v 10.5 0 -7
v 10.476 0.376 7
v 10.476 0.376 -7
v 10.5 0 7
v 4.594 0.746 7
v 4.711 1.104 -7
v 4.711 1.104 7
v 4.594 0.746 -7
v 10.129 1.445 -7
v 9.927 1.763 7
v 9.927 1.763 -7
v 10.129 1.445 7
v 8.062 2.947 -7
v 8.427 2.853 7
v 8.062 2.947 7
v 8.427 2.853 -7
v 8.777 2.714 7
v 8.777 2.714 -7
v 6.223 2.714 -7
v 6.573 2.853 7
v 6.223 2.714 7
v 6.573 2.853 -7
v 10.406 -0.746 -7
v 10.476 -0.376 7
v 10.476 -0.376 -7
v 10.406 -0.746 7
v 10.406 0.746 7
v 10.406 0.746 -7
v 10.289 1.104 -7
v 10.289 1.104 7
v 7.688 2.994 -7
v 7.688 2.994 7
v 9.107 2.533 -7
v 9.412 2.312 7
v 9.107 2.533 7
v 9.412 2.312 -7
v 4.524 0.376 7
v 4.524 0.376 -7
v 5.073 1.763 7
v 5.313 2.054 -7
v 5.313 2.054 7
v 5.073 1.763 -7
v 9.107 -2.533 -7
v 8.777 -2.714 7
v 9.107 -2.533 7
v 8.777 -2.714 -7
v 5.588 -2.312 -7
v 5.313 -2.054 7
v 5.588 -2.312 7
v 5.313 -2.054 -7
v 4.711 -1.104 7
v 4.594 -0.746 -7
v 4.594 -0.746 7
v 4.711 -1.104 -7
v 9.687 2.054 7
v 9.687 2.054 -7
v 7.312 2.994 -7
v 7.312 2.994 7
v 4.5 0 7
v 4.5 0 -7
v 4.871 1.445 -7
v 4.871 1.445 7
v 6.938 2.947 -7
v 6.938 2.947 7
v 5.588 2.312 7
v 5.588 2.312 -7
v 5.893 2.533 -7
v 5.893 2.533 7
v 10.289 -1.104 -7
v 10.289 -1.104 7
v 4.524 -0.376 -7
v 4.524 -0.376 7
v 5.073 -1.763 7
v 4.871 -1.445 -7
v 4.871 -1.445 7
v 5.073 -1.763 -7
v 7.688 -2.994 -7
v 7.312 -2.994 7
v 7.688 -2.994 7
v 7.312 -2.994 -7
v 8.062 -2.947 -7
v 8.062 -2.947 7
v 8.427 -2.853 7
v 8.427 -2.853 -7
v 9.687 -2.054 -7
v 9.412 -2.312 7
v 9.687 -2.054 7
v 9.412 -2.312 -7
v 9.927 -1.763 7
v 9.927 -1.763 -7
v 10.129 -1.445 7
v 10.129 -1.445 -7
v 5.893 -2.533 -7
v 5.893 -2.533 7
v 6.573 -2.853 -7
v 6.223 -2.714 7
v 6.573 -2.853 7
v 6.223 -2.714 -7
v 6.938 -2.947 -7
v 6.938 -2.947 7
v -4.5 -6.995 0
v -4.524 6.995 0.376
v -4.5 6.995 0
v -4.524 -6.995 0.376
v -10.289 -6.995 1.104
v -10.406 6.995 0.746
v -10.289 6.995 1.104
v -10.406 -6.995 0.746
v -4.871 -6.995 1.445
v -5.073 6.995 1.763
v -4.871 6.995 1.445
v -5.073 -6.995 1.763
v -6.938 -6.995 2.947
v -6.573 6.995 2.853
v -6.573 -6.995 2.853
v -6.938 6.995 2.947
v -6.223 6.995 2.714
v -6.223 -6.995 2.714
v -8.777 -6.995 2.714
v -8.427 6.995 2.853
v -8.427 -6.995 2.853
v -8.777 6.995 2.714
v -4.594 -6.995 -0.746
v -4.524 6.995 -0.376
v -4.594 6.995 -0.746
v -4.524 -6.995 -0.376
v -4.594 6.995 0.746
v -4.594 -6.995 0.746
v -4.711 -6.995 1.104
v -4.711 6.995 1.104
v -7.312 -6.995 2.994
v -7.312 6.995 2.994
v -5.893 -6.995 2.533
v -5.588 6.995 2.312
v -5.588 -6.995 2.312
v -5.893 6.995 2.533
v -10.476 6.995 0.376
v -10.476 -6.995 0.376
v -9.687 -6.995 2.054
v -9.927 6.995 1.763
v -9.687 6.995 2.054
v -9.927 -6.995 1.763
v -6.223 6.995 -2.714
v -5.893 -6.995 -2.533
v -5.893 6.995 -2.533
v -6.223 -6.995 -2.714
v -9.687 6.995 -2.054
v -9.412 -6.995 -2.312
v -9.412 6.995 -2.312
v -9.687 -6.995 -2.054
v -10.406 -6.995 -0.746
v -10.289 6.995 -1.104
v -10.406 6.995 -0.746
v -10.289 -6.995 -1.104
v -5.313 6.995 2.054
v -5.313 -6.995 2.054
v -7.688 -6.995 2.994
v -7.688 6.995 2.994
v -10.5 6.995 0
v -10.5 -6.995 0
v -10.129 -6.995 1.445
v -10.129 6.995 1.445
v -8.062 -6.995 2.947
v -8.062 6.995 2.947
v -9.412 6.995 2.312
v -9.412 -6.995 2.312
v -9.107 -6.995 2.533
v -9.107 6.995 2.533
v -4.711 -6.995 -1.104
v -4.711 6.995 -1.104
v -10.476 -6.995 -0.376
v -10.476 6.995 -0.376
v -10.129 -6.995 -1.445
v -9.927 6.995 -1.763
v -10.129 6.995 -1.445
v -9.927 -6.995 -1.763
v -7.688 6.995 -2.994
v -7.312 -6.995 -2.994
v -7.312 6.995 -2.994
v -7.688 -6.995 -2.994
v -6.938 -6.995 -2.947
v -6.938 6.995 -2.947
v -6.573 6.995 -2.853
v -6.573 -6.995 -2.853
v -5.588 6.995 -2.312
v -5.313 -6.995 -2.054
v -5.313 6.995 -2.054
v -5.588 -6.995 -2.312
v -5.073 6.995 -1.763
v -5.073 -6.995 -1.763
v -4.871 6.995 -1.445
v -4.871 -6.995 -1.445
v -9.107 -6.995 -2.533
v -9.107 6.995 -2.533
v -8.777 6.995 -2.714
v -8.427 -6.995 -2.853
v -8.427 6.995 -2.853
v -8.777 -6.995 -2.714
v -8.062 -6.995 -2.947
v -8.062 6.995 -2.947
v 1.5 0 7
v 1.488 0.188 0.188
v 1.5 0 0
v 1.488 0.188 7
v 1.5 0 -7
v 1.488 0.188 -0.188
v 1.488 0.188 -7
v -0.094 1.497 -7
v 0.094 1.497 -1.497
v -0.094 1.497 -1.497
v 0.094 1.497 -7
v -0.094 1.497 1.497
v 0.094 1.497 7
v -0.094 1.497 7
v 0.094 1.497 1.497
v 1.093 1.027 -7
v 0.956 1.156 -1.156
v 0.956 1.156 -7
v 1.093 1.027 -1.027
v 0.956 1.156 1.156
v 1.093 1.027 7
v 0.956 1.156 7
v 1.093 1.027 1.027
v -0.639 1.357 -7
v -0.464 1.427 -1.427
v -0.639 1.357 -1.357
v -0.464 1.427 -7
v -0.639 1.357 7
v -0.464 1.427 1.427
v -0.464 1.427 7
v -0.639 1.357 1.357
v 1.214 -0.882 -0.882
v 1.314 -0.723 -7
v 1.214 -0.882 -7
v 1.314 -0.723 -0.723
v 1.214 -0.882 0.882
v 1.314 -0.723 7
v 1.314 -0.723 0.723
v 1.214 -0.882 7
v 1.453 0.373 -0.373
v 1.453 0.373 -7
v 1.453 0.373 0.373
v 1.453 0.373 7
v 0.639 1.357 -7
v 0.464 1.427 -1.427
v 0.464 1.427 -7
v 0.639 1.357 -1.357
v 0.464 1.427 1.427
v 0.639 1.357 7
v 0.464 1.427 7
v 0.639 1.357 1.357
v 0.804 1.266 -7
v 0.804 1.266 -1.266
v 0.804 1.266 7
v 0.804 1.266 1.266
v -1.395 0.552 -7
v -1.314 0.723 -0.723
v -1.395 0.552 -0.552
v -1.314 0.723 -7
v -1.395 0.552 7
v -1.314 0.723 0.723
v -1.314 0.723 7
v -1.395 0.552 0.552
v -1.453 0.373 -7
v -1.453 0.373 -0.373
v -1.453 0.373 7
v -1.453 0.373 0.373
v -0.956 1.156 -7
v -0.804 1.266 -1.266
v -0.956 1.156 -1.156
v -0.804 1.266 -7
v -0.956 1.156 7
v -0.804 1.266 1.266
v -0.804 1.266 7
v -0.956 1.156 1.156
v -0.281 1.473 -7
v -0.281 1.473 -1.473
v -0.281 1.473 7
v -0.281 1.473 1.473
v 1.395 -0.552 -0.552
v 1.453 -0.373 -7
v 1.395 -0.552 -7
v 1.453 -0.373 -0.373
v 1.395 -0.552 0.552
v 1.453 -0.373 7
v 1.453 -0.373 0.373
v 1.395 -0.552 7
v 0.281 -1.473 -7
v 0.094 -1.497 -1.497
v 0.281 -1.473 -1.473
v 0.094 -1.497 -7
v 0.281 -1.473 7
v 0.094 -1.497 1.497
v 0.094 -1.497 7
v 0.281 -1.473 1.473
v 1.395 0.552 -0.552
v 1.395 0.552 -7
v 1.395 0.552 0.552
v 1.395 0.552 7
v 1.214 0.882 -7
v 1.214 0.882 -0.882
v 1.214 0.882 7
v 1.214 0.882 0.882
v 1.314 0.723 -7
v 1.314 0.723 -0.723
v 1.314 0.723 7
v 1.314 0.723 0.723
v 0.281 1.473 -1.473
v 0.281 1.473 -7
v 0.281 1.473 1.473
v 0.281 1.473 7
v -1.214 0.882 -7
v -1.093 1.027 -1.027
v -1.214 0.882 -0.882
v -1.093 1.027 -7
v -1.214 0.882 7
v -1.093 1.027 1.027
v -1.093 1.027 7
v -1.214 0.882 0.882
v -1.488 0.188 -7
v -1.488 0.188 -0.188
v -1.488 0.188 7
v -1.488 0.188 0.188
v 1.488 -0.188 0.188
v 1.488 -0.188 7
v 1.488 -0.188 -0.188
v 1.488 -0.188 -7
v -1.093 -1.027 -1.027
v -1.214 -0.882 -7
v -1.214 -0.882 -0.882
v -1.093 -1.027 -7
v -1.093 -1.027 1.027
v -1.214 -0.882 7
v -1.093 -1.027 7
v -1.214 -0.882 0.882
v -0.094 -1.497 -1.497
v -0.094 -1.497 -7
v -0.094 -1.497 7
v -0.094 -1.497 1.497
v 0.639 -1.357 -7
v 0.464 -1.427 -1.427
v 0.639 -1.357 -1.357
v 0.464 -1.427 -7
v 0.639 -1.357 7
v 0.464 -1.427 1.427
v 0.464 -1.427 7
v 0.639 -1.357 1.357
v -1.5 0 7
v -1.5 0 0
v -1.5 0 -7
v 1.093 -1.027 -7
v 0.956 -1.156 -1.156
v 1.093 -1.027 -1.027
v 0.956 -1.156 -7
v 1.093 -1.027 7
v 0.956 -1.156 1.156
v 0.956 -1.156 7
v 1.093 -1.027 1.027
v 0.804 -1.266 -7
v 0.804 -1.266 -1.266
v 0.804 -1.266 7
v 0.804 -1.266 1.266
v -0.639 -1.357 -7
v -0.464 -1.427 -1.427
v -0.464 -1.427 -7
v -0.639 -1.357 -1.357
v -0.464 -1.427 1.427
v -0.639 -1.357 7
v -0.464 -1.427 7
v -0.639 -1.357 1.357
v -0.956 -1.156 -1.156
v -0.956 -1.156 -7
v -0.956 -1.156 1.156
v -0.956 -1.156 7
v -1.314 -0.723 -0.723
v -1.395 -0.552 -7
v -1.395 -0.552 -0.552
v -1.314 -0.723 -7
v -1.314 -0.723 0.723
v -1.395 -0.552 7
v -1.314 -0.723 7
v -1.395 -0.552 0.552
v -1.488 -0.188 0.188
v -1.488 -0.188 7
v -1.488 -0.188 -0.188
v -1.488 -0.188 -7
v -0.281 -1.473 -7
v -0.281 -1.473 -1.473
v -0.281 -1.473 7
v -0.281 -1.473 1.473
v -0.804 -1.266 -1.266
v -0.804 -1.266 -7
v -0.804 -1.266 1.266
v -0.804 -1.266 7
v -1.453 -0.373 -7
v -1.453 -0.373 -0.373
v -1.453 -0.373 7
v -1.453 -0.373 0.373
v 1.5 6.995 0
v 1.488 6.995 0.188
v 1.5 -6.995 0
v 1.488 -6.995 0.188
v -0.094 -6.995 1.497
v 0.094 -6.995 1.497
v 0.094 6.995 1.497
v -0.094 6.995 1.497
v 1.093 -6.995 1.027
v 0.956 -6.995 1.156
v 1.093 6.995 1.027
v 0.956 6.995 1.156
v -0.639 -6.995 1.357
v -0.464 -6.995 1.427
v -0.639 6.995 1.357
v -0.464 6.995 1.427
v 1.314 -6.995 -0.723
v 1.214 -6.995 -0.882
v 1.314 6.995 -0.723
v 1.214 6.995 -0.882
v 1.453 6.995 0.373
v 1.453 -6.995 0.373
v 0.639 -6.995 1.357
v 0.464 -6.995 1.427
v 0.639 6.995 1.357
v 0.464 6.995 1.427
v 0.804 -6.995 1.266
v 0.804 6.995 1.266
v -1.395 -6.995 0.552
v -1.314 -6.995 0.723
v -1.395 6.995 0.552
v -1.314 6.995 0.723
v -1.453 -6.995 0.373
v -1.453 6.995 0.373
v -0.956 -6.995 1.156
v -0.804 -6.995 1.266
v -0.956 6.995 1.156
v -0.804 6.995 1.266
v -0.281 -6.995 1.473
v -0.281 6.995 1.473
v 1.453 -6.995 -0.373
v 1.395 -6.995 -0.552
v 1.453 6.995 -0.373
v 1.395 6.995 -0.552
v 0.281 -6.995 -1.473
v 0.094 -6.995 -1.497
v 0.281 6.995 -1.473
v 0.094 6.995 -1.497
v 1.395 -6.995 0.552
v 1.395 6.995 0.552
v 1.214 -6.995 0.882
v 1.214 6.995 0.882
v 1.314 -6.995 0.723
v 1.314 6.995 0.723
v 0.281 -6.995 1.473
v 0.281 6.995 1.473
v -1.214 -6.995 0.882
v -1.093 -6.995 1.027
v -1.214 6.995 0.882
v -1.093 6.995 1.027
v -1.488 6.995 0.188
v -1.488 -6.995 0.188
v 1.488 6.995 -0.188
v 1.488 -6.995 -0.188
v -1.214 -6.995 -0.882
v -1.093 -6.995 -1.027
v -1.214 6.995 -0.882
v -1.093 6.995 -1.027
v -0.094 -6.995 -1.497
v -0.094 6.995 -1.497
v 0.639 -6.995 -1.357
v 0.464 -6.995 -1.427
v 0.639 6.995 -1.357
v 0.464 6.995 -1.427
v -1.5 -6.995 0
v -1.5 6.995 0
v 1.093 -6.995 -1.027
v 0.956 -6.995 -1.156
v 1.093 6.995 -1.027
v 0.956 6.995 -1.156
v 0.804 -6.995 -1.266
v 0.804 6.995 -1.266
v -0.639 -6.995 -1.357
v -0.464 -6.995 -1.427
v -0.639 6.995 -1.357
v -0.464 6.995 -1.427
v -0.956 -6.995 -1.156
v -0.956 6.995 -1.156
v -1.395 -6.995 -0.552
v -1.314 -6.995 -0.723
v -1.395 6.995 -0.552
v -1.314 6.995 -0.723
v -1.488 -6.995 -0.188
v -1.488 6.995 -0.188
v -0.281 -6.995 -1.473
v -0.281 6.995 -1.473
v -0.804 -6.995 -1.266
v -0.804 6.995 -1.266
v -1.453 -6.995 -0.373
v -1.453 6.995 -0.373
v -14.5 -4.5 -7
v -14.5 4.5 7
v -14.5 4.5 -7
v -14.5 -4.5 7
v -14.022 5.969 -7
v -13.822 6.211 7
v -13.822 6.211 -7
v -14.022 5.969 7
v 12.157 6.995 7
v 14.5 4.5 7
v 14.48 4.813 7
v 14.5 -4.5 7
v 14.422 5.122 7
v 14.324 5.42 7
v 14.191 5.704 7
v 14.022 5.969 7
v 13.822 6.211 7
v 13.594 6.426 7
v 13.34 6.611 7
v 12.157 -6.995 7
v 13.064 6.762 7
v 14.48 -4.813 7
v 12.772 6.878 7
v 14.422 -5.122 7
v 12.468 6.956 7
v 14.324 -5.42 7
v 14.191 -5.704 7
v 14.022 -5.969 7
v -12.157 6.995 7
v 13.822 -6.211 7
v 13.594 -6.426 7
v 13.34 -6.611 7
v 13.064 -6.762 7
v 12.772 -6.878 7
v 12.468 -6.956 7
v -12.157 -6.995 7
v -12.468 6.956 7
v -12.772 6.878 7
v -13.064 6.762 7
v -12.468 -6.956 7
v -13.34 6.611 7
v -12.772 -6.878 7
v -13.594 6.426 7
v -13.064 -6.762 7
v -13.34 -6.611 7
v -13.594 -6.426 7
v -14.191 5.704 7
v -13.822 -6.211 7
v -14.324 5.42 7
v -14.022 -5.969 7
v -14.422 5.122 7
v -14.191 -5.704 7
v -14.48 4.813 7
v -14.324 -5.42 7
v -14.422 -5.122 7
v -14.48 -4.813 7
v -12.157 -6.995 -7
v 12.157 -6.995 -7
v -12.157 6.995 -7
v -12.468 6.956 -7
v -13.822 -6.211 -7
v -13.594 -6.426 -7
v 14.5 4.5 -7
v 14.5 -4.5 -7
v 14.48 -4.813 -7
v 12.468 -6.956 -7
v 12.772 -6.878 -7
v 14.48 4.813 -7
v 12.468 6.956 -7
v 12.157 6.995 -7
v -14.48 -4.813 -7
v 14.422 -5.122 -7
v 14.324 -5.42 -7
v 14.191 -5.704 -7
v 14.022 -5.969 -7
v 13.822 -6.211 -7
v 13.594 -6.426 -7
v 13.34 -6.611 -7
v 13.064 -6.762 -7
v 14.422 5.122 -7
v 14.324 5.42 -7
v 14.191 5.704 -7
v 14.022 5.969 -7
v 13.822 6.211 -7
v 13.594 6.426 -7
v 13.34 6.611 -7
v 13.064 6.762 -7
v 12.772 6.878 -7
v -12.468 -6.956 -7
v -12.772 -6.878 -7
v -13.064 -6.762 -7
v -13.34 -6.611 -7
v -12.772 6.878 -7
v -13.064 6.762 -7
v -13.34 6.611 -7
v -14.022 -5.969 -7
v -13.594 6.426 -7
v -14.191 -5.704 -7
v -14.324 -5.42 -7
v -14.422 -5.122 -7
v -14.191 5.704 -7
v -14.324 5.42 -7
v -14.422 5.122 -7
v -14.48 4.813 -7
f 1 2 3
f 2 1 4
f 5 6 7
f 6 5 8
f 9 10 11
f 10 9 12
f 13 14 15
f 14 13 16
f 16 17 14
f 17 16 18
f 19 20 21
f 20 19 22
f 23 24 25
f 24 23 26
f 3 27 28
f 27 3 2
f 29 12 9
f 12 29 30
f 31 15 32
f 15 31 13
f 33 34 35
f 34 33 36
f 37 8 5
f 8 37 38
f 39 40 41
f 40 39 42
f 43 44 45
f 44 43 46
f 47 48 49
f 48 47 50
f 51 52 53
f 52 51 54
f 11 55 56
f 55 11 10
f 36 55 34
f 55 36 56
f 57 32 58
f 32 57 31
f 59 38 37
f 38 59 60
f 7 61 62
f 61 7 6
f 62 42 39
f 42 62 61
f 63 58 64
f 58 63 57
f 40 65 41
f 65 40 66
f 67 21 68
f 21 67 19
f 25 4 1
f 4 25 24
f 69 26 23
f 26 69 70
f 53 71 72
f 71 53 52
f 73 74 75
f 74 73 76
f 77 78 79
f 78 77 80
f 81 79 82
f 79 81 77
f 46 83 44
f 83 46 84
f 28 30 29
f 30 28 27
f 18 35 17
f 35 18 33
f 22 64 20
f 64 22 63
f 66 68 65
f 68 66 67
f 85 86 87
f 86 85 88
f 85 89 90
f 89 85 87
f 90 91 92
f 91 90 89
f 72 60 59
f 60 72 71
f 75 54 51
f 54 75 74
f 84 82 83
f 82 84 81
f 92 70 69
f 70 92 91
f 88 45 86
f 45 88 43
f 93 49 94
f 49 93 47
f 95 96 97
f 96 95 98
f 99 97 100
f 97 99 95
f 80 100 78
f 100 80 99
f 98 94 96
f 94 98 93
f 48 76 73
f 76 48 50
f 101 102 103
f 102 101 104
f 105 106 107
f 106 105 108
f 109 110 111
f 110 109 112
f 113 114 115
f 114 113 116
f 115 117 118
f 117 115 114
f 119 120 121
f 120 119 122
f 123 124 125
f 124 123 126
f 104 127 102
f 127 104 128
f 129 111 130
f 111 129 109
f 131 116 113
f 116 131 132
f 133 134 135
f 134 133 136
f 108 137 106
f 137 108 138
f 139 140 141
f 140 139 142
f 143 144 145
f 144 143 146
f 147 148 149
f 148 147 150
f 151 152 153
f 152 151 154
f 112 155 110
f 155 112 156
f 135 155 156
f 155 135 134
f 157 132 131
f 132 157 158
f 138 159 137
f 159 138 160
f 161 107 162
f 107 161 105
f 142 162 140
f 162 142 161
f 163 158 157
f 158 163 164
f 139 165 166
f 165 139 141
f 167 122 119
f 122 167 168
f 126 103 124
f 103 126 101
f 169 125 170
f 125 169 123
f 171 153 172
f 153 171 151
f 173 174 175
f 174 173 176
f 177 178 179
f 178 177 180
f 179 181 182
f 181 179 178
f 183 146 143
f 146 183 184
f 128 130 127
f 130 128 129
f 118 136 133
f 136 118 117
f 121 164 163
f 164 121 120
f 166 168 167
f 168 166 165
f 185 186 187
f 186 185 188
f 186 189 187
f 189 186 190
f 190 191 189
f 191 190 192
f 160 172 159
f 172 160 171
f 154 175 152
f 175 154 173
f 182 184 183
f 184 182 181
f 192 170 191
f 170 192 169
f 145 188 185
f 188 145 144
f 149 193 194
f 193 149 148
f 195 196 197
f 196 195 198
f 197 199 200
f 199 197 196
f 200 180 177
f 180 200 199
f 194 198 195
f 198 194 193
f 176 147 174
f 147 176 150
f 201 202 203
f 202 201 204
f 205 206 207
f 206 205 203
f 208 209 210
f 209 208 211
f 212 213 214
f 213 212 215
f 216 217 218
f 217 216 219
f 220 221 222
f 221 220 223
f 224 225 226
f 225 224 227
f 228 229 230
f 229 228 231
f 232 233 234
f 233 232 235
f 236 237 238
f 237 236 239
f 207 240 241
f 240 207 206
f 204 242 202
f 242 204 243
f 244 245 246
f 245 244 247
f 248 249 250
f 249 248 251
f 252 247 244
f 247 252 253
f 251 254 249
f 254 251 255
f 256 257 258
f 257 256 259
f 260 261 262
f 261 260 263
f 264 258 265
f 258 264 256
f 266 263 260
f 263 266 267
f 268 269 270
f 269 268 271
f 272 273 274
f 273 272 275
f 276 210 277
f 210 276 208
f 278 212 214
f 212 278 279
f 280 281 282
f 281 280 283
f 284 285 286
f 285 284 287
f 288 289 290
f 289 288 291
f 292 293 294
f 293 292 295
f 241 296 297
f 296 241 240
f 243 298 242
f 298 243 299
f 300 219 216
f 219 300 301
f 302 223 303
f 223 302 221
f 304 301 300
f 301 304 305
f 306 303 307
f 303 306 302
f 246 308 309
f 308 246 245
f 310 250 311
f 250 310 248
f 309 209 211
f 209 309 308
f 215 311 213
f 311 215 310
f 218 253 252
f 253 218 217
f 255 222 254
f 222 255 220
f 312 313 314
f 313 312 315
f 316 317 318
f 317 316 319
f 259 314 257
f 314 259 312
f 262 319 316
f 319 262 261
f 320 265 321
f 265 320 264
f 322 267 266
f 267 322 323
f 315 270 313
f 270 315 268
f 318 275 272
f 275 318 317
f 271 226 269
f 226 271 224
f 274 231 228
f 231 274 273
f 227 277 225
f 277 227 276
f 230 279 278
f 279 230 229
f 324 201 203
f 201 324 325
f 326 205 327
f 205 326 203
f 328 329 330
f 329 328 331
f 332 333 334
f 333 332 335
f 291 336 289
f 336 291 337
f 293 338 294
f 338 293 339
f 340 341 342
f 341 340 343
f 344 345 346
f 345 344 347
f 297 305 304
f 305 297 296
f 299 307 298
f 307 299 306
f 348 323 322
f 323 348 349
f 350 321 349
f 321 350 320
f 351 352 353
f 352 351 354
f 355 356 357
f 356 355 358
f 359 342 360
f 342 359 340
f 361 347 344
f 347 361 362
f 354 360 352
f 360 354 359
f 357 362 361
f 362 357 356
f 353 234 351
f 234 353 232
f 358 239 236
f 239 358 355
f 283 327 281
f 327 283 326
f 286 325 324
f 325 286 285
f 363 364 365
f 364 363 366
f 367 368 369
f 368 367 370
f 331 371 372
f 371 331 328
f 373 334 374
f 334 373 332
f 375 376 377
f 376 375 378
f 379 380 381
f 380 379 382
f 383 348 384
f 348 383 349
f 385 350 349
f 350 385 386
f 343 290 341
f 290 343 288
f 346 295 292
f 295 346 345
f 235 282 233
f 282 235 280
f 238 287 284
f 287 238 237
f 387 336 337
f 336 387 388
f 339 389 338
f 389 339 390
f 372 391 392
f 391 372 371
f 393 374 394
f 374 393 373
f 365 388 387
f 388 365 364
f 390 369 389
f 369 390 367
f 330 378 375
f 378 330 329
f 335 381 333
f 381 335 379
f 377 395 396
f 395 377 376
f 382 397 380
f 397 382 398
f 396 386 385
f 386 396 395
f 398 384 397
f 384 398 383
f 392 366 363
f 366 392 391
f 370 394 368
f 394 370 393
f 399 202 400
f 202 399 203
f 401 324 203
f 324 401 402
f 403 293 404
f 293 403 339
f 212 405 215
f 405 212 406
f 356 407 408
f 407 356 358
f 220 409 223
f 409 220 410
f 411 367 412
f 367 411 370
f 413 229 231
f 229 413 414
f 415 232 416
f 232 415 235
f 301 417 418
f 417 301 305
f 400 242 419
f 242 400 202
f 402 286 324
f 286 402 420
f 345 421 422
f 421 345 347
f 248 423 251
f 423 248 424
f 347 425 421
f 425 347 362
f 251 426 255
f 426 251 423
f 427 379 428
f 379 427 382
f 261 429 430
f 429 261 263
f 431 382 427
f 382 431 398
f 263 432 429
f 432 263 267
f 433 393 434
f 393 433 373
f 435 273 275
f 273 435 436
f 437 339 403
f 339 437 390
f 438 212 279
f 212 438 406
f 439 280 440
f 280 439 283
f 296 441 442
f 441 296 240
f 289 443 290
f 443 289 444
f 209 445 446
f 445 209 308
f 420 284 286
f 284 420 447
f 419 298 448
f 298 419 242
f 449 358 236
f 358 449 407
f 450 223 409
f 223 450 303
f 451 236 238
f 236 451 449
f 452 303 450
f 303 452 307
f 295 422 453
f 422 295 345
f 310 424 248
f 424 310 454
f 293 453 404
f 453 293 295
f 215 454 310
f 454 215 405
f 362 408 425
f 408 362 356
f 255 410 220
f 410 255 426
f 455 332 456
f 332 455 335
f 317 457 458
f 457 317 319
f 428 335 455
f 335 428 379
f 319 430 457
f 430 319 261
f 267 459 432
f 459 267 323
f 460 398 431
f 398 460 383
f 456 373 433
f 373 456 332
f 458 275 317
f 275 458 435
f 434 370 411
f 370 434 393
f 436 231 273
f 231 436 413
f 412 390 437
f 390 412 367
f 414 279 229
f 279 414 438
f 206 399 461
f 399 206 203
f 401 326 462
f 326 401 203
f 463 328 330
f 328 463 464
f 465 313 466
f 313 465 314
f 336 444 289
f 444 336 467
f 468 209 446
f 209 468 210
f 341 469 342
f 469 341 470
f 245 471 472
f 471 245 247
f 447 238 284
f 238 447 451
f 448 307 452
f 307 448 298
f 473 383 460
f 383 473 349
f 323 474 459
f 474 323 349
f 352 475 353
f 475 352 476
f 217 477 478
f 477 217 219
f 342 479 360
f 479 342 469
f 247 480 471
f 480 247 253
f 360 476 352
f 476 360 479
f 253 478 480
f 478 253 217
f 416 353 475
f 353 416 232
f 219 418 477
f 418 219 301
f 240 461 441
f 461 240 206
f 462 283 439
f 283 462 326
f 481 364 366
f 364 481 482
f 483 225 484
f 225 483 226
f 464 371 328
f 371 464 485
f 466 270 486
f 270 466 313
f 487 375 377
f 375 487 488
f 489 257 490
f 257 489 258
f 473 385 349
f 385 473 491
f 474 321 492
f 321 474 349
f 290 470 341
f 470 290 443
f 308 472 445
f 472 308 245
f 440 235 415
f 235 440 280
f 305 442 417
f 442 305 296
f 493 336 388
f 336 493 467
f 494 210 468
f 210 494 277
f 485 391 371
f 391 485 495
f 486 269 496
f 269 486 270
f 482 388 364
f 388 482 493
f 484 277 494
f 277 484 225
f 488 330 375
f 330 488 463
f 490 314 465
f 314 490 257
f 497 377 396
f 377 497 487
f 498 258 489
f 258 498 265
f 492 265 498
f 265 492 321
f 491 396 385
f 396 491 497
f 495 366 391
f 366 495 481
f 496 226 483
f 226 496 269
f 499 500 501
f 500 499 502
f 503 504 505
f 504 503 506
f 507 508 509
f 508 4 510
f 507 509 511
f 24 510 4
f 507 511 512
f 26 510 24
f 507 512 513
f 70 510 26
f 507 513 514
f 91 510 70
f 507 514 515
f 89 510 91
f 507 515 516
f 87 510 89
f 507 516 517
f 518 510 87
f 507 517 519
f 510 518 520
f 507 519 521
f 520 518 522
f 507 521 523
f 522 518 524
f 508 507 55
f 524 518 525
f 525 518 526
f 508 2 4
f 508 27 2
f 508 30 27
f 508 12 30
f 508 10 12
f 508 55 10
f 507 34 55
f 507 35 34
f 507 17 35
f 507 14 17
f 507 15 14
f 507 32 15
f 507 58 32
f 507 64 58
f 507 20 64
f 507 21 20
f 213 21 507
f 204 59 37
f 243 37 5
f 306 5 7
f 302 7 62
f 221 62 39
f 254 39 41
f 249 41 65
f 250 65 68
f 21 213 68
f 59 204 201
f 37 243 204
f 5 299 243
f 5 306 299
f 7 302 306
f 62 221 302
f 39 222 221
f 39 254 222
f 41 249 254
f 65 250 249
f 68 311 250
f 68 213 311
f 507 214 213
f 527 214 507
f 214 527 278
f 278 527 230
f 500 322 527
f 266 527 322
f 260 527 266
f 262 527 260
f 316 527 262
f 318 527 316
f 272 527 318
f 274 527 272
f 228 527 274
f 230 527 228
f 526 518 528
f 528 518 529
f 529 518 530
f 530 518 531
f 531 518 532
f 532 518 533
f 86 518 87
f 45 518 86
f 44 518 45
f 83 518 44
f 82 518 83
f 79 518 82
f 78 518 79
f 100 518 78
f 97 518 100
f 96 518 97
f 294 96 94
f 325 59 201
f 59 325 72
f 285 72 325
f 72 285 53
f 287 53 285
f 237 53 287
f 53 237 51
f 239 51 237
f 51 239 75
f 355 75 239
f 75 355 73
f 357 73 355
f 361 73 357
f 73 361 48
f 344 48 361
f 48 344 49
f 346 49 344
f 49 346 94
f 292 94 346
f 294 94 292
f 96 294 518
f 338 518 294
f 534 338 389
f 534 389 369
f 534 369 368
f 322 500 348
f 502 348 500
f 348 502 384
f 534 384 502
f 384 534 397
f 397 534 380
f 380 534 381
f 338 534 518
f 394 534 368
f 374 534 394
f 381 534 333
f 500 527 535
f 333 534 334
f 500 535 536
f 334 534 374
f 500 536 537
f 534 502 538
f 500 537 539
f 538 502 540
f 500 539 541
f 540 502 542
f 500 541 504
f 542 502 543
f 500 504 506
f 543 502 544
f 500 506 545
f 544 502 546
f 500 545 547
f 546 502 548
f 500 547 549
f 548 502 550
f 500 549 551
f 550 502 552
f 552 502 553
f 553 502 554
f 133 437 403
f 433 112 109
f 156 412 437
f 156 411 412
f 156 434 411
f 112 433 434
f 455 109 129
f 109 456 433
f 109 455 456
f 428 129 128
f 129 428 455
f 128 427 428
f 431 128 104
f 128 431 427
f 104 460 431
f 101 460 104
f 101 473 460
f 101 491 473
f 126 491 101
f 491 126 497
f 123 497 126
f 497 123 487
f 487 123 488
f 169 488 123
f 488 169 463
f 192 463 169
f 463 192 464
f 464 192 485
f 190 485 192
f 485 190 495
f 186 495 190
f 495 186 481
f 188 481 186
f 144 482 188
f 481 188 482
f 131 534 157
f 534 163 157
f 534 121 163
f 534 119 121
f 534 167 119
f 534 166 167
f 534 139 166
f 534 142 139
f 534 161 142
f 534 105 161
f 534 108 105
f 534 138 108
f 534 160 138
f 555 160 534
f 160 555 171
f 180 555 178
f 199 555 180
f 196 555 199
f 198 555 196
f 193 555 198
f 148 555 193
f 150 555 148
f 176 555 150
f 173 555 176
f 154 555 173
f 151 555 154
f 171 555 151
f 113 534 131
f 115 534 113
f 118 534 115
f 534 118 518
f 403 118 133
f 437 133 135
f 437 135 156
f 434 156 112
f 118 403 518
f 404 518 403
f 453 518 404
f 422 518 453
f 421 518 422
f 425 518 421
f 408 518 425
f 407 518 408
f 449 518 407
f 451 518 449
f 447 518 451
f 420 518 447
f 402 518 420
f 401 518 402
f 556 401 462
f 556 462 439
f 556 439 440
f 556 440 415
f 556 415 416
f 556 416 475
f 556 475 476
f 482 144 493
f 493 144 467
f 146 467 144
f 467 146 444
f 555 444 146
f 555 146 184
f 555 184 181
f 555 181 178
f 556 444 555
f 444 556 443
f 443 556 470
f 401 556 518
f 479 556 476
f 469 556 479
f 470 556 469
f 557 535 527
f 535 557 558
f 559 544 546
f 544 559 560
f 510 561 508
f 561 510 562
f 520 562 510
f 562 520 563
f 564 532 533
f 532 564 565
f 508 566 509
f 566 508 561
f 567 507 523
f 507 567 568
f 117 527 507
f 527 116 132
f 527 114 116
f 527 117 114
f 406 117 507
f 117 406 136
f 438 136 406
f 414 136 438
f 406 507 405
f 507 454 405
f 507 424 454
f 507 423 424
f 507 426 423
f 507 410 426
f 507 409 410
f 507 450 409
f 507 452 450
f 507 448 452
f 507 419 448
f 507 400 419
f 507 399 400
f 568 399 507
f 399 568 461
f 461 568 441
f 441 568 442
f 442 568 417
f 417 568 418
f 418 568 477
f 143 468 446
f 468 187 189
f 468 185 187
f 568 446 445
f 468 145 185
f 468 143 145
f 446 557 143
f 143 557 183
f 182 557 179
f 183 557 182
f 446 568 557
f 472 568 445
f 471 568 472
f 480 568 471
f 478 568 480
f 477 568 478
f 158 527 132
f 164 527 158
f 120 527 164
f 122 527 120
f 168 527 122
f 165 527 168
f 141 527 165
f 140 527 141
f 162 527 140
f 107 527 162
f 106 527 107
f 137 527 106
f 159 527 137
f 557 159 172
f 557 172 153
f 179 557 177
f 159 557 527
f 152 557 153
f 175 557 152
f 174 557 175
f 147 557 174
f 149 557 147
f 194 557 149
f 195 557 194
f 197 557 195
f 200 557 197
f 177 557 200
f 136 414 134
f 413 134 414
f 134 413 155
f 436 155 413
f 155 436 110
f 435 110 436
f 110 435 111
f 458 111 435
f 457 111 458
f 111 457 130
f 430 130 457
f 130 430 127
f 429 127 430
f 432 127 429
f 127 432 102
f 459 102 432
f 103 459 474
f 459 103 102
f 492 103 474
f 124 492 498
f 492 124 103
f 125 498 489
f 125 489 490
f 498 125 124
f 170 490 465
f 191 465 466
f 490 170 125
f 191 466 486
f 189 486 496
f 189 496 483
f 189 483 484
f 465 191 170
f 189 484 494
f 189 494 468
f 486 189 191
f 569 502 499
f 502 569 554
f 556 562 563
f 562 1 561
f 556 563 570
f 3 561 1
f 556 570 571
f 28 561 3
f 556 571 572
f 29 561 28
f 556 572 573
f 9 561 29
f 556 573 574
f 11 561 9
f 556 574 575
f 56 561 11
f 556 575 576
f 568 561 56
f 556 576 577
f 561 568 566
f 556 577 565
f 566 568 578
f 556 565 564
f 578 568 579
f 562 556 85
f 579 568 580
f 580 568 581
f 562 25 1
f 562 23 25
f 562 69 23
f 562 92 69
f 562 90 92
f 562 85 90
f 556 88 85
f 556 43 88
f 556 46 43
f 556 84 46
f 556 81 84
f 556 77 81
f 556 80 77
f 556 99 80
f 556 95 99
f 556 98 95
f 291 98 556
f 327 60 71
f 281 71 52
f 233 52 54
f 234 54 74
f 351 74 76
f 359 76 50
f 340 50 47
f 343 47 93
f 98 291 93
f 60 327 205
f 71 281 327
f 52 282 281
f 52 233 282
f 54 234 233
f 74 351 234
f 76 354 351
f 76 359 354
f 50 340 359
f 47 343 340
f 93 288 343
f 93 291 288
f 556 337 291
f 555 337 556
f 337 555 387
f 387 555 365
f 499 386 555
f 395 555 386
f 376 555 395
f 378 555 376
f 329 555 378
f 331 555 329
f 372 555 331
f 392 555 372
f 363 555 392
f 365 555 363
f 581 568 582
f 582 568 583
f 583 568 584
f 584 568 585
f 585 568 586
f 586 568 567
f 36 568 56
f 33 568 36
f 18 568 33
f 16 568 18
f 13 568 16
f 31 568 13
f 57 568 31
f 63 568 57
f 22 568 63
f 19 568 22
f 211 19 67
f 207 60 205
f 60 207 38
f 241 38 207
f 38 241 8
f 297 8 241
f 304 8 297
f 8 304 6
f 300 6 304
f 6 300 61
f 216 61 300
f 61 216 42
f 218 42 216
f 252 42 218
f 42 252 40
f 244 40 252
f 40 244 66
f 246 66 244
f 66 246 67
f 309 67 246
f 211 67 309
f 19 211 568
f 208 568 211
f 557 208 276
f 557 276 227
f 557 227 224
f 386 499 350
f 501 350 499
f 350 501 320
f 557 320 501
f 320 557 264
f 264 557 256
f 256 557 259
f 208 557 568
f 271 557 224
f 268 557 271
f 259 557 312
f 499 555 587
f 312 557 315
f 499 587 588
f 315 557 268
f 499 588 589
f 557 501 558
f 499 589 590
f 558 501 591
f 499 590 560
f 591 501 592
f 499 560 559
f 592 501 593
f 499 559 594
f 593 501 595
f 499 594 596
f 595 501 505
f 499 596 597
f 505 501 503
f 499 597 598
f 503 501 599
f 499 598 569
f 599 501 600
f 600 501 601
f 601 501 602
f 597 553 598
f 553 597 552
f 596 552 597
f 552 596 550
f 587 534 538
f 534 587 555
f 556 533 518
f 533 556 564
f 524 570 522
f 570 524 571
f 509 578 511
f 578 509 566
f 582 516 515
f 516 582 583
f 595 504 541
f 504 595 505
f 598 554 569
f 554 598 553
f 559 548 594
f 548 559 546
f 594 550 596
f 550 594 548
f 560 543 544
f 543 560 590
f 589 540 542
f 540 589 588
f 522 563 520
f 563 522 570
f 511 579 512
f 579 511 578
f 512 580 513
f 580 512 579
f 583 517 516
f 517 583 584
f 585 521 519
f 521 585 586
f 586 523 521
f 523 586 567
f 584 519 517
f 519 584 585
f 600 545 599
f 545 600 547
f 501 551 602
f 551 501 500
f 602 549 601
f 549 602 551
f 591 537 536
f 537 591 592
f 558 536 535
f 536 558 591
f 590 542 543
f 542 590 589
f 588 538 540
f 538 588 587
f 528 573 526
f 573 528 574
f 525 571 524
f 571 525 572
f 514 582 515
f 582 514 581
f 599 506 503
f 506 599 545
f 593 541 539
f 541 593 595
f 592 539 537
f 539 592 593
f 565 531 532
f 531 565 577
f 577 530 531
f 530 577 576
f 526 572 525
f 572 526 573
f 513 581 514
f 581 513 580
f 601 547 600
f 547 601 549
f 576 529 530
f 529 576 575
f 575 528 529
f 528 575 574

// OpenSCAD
$fn = 50;


difference() {
	union() {
		*color(alpha = 1.0000000000, c = "gray") {
			translate(v = [0, 7, 0]) {
				linear_extrude(height = 1) {
					text(font = "Arial:style=Bold", halign = "center", size = 4.5000000000, text = "COMMENT plate main", valign = "center");
				}
			}
		}
		translate(v = [0, 0, -7.0000000000]) {
			hull() {
				translate(v = [-12.0000000000, 4.5000000000, 0]) {
					cylinder(h = 14, r = 2.5000000000);
				}
				translate(v = [12.0000000000, 4.5000000000, 0]) {
					cylinder(h = 14, r = 2.5000000000);
				}
				translate(v = [-12.0000000000, -4.5000000000, 0]) {
					cylinder(h = 14, r = 2.5000000000);
				}
				translate(v = [12.0000000000, -4.5000000000, 0]) {
					cylinder(h = 14, r = 2.5000000000);
				}
			}
		}
	}
	union() {
		translate(v = [7.5000000000, 0.0000000000, 0.0000000000]) {
			rotate(a = [0, 0, 0]) {
				difference() {
					union() {
						translate(v = [0, 0, -125.0000000000]) {
							cylinder(h = 250, r = 3.0000000000);
						}
					}
					union();
				}
			}
		}
		translate(v = [-7.5000000000, 0.0000000000, 0.0000000000]) {
			rotate(a = [90, 0, 0]) {
				difference() {
					union() {
						translate(v = [0, 0, -125.0000000000]) {
							cylinder(h = 250, r = 3.0000000000);
						}
					}
					union();
				}
			}
		}
		translate(v = [0.0000000000, 0.0000000000, 0.0000000000]) {
			rotate(a = [0, 0, 0]) {
				difference() {
					union() {
						translate(v = [0, 0, -125.0000000000]) {
							cylinder(h = 250, r = 1.5000000000);
						}
					}
					union();
				}
			}
		}
		translate(v = [0.0000000000, 0.0000000000, 0.0000000000]) {
			rotate(a = [90, 0, 0]) {
				difference() {
					union() {
						translate(v = [0, 0, -125.0000000000]) {
							cylinder(h = 250, r = 1.5000000000);
						}
					}
					union();
				}
			}
		}
	}
}
